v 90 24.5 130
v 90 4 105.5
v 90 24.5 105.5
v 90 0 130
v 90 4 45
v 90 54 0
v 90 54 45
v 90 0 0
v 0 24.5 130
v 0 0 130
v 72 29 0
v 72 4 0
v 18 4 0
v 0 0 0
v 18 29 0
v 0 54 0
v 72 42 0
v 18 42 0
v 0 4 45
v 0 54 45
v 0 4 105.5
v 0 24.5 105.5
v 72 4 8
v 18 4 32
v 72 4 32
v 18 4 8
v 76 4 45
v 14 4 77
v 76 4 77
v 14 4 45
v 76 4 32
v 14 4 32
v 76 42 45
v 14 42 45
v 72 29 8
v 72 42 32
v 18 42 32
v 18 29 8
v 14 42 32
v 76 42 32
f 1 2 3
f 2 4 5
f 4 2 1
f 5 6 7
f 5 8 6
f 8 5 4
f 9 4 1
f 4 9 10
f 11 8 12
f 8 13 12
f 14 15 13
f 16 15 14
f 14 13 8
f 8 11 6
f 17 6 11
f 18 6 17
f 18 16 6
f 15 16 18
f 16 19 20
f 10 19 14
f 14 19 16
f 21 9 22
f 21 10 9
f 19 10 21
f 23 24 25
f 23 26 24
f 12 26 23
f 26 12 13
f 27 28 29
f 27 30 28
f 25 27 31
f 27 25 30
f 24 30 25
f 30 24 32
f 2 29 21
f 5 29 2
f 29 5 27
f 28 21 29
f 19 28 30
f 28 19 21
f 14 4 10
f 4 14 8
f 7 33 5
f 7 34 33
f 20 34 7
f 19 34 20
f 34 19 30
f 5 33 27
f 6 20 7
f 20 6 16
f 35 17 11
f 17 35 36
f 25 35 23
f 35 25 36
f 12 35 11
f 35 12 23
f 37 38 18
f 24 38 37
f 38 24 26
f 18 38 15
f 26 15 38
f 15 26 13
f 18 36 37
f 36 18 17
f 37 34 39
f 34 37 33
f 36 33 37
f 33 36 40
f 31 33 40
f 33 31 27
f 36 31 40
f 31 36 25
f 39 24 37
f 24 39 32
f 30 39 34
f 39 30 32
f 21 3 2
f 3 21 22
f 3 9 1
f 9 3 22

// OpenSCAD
// ============================================================
// Makita Cordless Drill — French Cleat Wall Mount
// ============================================================
// Stores a Makita 18V compact drill by the handle. Drill hangs
// trigger-side down, grip resting on a contoured cradle.
//
// French cleat: 19mm (3/4") plywood, 45° angle
// Designed for 3D print (PLA or PETG). No supports needed.
// Print orientation: back plate flat on bed.
//
// Default values match a standard Makita DHP/DDF 18V compact drill.
// Adjust the handle dimensions section if your drill differs.
// ============================================================

// ---- FRENCH CLEAT SYSTEM (don't change) ----
cleat_material = 19;   // Wall cleat plywood thickness (mm)
hook_clearance = 1.5;  // Gap so hook slides onto cleat easily
wall_t         = 4;    // Structural wall/plate thickness (mm)

// ---- DRILL HANDLE DIMENSIONS (*** measure with calipers to confirm) ----
// These match typical Makita 18V compact drill handle geometry
handle_w       = 52;   // Handle grip width at narrowest grab zone (mm)
handle_d       = 37;   // Handle depth front-to-back (mm)

// ---- CRADLE / MOUNT ----
plate_w        = 90;   // Width of the backing plate (mm)
plate_h        = 130;  // Total mount height — cradle bottom to hook top (mm)
cradle_h       = 45;   // Height of the handle pocket section (mm)
cradle_depth   = 50;   // Depth (front-to-back) of the cradle pocket (mm)
cradle_gap     = 1.0;  // Clearance on each side of the handle for easy insert (mm)
lip_h          = 8;    // Retention lip height — keeps drill from sliding up (mm)
lip_inset      = 3;    // How far the lip narrows the opening (mm)

// ---- COMPUTED ----
pocket_w       = handle_w + cradle_gap * 2;
pocket_d       = handle_d + cradle_gap;
hook_h         = cleat_material + hook_clearance + wall_t;
hook_start_z   = plate_h - hook_h;

// ============================================================
// MODULES
// ============================================================

// French cleat hook — slides over the 45° wall cleat strip
module cleat_hook() {
    difference() {
        cube([plate_w, cleat_material + wall_t + hook_clearance, hook_h]);
        // Angled undercut so hook seats on the 45° cleat face
        translate([-0.1, wall_t, -0.1])
        rotate([0, 90, 0])
        linear_extrude(plate_w + 0.2)
        polygon([
            [0, 0],
            [cleat_material + hook_clearance, 0],
            [cleat_material + hook_clearance, hook_h + 0.2],
            [0, hook_h * 0.45]
        ]);
    }
}

// Main mount body — back plate + cradle pocket + retention lips
module mount_body() {
    difference() {
        union() {
            // Back plate — full height, wall_t deep
            cube([plate_w, wall_t, plate_h]);

            // Cradle block — where the drill handle sits
            cube([plate_w, cradle_depth + wall_t, cradle_h]);
        }

        // Handle pocket — open at front and top for easy insert/remove
        // Slightly wider at top so drill drops in, narrows at bottom to hold it
        translate([(plate_w - pocket_w) / 2, wall_t, -0.1])
            cube([pocket_w, pocket_d, cradle_h - lip_h + 0.2]);

        // Widen the top of the pocket (funnel opening) for easy insertion
        translate([(plate_w - pocket_w) / 2 - 4, wall_t, cradle_h - lip_h - 5])
            cube([pocket_w + 8, pocket_d, cradle_h]);
    }

    // Retention lips — narrow the pocket slightly near the bottom
    // so the drill handle is gripped and can't fall out
    lip_x_left  = (plate_w - pocket_w) / 2;
    lip_x_right = (plate_w + pocket_w) / 2;
    // Left lip
    translate([lip_x_left - lip_inset, wall_t, 0])
        cube([lip_inset, min(pocket_d - 5, 25), lip_h]);
    // Right lip
    translate([lip_x_right, wall_t, 0])
        cube([lip_inset, min(pocket_d - 5, 25), lip_h]);
}

// Gussets — reinforce the cradle-to-backplate junction
module gussets() {
    gusset_t = 3;
    gusset_d = 25;
    gusset_h = cradle_h * 0.6;
    // Place gussets near outer edges, clear of pocket
    for (gx = [
        (plate_w - pocket_w) / 2 - gusset_t - 3,
        (plate_w + pocket_w) / 2 + 3
    ]) {
        translate([gx, wall_t, 0])
        linear_extrude(gusset_h)
        polygon([
            [0, 0],
            [gusset_t, 0],
            [gusset_t, gusset_d],
            [0, gusset_d * 0.5]
        ]);
    }
}

// ============================================================
// ASSEMBLY — unioned into one solid printable part
// ============================================================
union() {
    mount_body();
    gussets();
    translate([0, 0, hook_start_z])
        cleat_hook();
}

// ============================================================
// PRINT SETTINGS
// ============================================================
// Orientation : back plate flat on print bed (no supports needed)
// Material    : PETG or PLA+  (PETG recommended for garage/workshop)
// Infill      : 30–40%
// Perimeters  : 3 walls minimum (especially around hook section)
// Layer height: 0.2mm
// ============================================================
